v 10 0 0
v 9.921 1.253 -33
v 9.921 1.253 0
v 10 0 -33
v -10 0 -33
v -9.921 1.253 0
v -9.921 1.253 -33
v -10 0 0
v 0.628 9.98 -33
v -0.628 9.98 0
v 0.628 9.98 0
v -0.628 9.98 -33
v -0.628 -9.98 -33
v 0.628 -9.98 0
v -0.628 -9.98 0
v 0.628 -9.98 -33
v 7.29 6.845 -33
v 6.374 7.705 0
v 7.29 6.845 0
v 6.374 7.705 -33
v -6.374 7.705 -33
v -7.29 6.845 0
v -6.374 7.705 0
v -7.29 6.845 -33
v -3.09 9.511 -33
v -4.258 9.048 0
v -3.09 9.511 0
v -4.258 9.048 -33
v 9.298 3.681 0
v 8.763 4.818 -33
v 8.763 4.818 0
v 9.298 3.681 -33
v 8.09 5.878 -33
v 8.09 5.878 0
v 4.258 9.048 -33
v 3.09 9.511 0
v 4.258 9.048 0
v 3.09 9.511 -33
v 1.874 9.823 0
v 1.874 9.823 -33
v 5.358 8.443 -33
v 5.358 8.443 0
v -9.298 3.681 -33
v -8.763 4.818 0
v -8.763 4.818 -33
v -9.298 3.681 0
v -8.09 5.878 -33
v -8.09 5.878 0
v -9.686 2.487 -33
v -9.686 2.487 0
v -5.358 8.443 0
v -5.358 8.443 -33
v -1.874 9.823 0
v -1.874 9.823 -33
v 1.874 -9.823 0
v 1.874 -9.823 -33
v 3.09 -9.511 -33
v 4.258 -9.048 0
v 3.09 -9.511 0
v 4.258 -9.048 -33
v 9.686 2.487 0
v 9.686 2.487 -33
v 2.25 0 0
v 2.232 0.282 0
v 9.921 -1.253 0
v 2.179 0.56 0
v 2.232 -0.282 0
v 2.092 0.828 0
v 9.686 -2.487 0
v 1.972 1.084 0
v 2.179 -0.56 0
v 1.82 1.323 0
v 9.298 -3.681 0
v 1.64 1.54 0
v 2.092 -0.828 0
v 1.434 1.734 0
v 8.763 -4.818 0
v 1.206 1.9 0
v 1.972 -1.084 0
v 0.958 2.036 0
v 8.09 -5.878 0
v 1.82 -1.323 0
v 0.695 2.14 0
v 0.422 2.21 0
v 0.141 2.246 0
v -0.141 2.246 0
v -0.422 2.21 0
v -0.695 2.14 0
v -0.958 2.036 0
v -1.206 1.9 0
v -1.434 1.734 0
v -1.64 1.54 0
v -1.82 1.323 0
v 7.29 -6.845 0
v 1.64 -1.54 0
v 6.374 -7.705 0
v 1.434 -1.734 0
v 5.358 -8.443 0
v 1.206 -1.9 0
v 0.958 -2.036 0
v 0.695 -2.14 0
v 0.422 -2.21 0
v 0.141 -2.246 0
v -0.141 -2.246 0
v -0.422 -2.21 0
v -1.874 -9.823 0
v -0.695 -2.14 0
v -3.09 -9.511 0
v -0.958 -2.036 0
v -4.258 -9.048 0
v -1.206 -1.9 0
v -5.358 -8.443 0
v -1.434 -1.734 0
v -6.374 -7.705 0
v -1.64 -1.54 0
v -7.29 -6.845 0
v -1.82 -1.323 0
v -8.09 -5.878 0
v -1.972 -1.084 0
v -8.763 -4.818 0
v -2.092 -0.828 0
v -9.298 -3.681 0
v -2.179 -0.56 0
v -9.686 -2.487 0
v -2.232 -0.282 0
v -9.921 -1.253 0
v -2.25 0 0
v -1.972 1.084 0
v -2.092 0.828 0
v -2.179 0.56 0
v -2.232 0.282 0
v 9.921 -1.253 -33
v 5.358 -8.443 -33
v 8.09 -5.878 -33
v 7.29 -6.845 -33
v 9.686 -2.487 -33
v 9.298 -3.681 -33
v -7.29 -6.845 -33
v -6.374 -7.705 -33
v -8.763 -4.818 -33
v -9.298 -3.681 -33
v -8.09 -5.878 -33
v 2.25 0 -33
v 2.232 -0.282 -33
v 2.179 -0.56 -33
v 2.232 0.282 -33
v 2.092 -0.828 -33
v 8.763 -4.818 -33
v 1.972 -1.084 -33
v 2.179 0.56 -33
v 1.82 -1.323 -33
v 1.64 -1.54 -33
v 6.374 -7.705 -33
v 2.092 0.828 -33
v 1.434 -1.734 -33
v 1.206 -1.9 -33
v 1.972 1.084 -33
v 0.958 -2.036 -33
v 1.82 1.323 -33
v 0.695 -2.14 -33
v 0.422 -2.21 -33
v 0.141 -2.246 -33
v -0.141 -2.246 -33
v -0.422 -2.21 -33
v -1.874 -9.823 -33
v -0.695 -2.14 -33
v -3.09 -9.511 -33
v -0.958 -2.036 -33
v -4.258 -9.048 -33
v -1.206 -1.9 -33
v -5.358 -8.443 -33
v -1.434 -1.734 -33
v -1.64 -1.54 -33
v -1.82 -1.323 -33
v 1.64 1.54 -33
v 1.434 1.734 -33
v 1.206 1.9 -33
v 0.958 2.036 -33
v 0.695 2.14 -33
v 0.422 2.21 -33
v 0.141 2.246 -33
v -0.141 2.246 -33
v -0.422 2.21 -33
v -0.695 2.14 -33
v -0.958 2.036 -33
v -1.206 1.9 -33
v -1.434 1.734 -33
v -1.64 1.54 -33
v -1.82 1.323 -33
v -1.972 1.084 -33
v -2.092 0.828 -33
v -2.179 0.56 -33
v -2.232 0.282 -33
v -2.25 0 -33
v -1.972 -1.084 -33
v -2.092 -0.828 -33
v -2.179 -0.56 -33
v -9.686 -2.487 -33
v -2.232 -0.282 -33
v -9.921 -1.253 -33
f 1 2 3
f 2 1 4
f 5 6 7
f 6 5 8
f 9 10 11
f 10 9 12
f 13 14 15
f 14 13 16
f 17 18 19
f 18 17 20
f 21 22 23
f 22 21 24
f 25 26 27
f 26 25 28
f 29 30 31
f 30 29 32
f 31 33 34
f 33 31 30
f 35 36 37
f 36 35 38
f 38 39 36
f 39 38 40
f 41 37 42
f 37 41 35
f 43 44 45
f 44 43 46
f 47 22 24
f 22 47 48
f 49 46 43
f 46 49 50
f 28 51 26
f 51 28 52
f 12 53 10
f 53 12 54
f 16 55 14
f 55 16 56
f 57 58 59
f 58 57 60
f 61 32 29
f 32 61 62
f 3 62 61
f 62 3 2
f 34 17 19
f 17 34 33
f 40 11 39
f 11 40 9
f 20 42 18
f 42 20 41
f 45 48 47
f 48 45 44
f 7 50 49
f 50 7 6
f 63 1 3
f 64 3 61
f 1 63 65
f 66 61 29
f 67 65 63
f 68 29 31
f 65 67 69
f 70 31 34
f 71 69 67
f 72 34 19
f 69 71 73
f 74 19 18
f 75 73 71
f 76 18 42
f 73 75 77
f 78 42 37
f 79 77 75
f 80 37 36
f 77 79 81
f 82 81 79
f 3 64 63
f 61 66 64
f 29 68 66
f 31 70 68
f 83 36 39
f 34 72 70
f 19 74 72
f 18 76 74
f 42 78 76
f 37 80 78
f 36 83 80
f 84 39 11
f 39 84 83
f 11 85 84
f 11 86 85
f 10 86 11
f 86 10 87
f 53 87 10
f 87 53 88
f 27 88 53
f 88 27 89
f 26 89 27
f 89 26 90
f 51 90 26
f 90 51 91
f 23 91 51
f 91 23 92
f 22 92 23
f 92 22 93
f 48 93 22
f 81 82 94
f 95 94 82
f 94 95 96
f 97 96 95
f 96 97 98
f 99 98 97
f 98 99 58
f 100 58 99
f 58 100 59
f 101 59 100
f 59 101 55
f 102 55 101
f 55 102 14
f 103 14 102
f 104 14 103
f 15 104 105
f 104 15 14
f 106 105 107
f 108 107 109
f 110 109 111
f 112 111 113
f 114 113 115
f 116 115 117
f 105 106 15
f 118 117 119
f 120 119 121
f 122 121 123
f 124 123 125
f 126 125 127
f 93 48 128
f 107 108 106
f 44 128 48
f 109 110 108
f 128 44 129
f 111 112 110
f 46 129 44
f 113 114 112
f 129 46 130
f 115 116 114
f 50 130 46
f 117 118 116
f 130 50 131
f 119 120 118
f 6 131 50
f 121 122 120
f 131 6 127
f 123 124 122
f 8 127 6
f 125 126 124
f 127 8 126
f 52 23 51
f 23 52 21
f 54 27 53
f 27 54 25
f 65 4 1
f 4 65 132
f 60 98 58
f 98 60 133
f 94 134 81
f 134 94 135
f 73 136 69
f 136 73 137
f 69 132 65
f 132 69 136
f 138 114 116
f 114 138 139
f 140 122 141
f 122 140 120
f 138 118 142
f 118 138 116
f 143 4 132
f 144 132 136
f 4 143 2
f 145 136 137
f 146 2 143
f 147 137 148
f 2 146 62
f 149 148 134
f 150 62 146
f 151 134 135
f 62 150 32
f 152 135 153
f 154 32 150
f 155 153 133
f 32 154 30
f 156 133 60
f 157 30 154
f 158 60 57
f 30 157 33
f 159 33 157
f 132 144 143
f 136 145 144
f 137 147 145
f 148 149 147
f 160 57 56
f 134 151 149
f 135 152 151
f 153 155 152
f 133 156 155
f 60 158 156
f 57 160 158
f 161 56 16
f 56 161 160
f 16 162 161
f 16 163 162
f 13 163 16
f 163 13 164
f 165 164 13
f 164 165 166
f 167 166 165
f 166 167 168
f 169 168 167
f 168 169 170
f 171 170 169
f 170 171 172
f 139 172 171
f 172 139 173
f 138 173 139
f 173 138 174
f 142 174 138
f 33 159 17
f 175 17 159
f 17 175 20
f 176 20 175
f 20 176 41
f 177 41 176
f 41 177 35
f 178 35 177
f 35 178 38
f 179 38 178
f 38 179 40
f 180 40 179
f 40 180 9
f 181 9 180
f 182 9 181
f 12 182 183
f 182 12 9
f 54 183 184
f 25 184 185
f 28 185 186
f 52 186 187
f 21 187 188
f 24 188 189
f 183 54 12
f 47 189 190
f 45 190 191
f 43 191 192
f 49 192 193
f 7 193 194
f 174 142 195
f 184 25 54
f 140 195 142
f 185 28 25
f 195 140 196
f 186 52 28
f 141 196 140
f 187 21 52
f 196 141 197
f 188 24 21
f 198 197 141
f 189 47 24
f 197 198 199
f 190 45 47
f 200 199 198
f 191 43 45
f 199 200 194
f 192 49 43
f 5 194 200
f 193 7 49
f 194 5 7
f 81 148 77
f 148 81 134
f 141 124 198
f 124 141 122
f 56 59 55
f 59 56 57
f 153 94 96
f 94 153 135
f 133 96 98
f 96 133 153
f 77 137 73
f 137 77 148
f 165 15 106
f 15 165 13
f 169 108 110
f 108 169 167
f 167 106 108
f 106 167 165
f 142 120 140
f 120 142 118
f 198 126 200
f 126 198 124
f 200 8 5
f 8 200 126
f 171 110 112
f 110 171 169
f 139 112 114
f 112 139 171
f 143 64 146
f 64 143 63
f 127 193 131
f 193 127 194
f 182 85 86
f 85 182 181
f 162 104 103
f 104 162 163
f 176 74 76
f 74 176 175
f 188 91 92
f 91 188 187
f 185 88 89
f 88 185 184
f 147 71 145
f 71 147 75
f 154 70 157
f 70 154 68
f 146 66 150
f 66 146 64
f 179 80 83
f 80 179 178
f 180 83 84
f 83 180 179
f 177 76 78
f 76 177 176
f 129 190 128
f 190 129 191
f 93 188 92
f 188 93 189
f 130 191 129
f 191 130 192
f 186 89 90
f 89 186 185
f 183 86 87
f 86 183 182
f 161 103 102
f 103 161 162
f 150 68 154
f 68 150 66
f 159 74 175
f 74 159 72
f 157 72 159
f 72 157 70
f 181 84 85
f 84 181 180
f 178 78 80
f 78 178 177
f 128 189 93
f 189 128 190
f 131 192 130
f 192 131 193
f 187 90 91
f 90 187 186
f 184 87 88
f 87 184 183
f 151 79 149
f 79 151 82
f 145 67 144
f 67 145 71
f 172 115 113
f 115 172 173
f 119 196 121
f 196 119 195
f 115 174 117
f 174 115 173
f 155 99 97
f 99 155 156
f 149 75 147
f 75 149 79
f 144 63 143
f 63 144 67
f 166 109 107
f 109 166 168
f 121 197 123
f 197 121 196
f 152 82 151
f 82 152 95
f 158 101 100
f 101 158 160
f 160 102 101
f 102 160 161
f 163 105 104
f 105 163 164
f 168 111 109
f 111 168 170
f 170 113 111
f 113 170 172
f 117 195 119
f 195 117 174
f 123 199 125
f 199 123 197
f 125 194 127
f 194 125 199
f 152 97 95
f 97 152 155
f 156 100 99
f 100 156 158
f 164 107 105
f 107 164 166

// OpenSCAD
$fn = 50;


difference() {
	union() {
		translate(v = [0, 0, -33.0000000000]) {
			cylinder(h = 33, r = 10.0000000000);
		}
		cylinder(h = 0, r = 13.0000000000);
	}
	union() {
		#translate(v = [0, 0, -33]) {
			cylinder(h = 33, r = 2.2500000000);
		}
	}
}
